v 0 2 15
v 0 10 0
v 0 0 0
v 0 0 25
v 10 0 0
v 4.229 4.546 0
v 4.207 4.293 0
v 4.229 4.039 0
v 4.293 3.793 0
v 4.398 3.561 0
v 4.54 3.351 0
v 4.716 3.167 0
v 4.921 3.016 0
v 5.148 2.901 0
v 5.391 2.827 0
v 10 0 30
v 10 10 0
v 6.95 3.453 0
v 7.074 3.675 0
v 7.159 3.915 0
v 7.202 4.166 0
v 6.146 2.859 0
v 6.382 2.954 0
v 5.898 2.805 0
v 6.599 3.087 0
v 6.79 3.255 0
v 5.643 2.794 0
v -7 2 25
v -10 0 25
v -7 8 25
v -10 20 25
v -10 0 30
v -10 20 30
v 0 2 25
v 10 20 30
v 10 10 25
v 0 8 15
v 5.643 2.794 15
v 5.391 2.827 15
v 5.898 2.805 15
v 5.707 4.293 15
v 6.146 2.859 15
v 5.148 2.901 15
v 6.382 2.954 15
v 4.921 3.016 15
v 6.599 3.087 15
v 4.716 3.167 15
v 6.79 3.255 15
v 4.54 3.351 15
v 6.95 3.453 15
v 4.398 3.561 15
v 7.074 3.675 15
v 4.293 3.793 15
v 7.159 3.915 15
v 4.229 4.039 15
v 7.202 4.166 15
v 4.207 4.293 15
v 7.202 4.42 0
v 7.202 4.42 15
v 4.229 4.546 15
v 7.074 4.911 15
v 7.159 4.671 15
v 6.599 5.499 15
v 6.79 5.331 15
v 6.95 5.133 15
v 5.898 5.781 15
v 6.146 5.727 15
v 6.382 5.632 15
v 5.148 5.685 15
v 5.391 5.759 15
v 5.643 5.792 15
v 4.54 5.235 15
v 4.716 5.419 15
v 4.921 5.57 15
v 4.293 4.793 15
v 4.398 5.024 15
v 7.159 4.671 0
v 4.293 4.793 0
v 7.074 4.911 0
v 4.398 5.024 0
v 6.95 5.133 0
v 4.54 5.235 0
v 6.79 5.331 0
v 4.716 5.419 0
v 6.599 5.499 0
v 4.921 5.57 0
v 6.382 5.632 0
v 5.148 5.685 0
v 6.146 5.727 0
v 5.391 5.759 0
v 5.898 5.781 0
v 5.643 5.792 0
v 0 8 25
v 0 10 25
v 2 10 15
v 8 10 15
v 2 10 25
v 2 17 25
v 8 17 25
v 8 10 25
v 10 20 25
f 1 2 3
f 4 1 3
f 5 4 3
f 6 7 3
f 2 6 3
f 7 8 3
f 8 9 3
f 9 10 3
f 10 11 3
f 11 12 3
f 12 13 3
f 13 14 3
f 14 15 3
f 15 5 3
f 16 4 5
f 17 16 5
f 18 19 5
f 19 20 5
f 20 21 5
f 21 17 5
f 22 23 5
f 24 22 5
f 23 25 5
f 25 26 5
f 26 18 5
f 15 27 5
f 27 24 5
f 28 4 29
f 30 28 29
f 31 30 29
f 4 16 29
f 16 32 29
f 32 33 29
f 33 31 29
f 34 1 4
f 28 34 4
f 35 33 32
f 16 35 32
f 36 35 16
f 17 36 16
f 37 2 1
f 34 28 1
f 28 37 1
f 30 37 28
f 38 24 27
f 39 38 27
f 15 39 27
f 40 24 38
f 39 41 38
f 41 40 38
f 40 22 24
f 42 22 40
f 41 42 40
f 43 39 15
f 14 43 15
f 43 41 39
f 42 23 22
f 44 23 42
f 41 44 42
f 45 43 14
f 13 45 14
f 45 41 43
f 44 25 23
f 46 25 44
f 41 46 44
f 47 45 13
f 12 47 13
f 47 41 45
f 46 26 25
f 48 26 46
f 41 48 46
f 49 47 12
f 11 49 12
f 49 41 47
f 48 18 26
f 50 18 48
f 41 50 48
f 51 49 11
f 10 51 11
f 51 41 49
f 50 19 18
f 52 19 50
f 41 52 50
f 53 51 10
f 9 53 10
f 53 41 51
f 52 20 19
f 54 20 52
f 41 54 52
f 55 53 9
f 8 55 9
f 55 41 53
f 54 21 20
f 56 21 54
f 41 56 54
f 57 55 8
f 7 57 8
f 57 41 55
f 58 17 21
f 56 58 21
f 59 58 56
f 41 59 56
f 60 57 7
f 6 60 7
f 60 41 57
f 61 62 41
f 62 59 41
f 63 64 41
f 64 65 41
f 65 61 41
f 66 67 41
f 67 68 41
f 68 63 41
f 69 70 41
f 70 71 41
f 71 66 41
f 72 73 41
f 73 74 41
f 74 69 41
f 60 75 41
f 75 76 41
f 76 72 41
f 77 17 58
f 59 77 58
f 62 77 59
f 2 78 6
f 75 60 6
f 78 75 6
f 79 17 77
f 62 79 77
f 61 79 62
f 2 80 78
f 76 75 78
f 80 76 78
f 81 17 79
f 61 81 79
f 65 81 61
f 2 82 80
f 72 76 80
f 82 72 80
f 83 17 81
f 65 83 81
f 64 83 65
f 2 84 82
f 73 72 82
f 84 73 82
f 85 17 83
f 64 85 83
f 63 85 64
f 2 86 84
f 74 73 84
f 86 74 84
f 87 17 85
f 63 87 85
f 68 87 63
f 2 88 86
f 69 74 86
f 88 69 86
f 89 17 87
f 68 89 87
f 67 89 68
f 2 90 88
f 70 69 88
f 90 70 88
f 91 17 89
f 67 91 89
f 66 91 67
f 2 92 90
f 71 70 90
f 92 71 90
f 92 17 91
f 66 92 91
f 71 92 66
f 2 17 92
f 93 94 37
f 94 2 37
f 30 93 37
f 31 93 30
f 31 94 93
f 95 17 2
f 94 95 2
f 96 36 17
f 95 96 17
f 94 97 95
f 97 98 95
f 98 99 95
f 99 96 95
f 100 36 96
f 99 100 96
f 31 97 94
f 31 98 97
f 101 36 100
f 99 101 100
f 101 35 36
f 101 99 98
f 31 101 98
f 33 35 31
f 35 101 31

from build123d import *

# Parameters (mm, degrees)
SKETCH_1_W          = 10
SKETCH_1_H          = 10
EXTRUDE_1_DEPTH     = 25
SKETCH_2_R          = 1.5
CUT_EXTRUDE_1_DEPTH = 15
SKETCH_3_W          = 20
SKETCH_3_H          = 20
EXTRUDE_2_DEPTH     = 5
SKETCH_4_W          = 7
SKETCH_4_H          = 3
SKETCH_4_W_2        = 3
SKETCH_4_H_2        = 7
EXTRUDE_3_DEPTH     = 10
CUT_EXTRUDE_2_DEPTH = 10
CUT_EXTRUDE_3_DEPTH = 10


with BuildPart() as part:
    # 草图1 → 凸台-拉伸1 (new body)
    with BuildSketch(Plane.XY):
        with Locations((5, 5)):
            Rectangle(SKETCH_1_W, SKETCH_1_H)
    extrude(amount=EXTRUDE_1_DEPTH)

    # 草图2 → 切除-拉伸1 (cut)
    with BuildSketch(Plane(origin=(0, 0, 0), x_dir=(-1, 0, 0), z_dir=(0, 0, -1))):
        with Locations((-5.707106781, 4.292893219)):
            Circle(SKETCH_2_R)
    extrude(amount=-CUT_EXTRUDE_1_DEPTH, mode=Mode.SUBTRACT)

    # 草图3 → 凸台-拉伸2 (add)
    with BuildSketch(Plane.XY.offset(25)):
        with Locations((0, 10)):
            Rectangle(SKETCH_3_W, SKETCH_3_H)
    extrude(amount=EXTRUDE_2_DEPTH)

    # 草图4 → 凸台-拉伸3 (add)
    with BuildSketch(Plane(origin=(0, 0, 25), x_dir=(-1, 0, 0), z_dir=(0, 0, -1))):
        with Locations((3.5, 6.5)):
            Rectangle(SKETCH_4_W, SKETCH_4_H)
        with Locations((3.5, 3.5)):
            Rectangle(SKETCH_4_W, SKETCH_4_H)
        with Locations((-3.5, 13.5)):
            Rectangle(SKETCH_4_W_2, SKETCH_4_H_2)
        with Locations((-6.5, 13.5)):
            Rectangle(SKETCH_4_W_2, SKETCH_4_H_2)
    extrude(amount=EXTRUDE_3_DEPTH)

    # 草图5 → 切除-拉伸2 (cut)
    with BuildSketch(Plane(origin=(0, 8, 0), x_dir=(1, 0, 0), z_dir=(0, 1, 0))):
        Polygon((-7, -25), (0, -15), (-7, -15), align=None)
    extrude(amount=-CUT_EXTRUDE_2_DEPTH, mode=Mode.SUBTRACT)

    # 草图6 → 切除-拉伸3 (cut)
    with BuildSketch(Plane.ZY.offset(-2)):
        Polygon((15, 10), (25, 17), (15, 17), align=None)
    extrude(amount=-CUT_EXTRUDE_3_DEPTH, mode=Mode.SUBTRACT)


solid = part.part
